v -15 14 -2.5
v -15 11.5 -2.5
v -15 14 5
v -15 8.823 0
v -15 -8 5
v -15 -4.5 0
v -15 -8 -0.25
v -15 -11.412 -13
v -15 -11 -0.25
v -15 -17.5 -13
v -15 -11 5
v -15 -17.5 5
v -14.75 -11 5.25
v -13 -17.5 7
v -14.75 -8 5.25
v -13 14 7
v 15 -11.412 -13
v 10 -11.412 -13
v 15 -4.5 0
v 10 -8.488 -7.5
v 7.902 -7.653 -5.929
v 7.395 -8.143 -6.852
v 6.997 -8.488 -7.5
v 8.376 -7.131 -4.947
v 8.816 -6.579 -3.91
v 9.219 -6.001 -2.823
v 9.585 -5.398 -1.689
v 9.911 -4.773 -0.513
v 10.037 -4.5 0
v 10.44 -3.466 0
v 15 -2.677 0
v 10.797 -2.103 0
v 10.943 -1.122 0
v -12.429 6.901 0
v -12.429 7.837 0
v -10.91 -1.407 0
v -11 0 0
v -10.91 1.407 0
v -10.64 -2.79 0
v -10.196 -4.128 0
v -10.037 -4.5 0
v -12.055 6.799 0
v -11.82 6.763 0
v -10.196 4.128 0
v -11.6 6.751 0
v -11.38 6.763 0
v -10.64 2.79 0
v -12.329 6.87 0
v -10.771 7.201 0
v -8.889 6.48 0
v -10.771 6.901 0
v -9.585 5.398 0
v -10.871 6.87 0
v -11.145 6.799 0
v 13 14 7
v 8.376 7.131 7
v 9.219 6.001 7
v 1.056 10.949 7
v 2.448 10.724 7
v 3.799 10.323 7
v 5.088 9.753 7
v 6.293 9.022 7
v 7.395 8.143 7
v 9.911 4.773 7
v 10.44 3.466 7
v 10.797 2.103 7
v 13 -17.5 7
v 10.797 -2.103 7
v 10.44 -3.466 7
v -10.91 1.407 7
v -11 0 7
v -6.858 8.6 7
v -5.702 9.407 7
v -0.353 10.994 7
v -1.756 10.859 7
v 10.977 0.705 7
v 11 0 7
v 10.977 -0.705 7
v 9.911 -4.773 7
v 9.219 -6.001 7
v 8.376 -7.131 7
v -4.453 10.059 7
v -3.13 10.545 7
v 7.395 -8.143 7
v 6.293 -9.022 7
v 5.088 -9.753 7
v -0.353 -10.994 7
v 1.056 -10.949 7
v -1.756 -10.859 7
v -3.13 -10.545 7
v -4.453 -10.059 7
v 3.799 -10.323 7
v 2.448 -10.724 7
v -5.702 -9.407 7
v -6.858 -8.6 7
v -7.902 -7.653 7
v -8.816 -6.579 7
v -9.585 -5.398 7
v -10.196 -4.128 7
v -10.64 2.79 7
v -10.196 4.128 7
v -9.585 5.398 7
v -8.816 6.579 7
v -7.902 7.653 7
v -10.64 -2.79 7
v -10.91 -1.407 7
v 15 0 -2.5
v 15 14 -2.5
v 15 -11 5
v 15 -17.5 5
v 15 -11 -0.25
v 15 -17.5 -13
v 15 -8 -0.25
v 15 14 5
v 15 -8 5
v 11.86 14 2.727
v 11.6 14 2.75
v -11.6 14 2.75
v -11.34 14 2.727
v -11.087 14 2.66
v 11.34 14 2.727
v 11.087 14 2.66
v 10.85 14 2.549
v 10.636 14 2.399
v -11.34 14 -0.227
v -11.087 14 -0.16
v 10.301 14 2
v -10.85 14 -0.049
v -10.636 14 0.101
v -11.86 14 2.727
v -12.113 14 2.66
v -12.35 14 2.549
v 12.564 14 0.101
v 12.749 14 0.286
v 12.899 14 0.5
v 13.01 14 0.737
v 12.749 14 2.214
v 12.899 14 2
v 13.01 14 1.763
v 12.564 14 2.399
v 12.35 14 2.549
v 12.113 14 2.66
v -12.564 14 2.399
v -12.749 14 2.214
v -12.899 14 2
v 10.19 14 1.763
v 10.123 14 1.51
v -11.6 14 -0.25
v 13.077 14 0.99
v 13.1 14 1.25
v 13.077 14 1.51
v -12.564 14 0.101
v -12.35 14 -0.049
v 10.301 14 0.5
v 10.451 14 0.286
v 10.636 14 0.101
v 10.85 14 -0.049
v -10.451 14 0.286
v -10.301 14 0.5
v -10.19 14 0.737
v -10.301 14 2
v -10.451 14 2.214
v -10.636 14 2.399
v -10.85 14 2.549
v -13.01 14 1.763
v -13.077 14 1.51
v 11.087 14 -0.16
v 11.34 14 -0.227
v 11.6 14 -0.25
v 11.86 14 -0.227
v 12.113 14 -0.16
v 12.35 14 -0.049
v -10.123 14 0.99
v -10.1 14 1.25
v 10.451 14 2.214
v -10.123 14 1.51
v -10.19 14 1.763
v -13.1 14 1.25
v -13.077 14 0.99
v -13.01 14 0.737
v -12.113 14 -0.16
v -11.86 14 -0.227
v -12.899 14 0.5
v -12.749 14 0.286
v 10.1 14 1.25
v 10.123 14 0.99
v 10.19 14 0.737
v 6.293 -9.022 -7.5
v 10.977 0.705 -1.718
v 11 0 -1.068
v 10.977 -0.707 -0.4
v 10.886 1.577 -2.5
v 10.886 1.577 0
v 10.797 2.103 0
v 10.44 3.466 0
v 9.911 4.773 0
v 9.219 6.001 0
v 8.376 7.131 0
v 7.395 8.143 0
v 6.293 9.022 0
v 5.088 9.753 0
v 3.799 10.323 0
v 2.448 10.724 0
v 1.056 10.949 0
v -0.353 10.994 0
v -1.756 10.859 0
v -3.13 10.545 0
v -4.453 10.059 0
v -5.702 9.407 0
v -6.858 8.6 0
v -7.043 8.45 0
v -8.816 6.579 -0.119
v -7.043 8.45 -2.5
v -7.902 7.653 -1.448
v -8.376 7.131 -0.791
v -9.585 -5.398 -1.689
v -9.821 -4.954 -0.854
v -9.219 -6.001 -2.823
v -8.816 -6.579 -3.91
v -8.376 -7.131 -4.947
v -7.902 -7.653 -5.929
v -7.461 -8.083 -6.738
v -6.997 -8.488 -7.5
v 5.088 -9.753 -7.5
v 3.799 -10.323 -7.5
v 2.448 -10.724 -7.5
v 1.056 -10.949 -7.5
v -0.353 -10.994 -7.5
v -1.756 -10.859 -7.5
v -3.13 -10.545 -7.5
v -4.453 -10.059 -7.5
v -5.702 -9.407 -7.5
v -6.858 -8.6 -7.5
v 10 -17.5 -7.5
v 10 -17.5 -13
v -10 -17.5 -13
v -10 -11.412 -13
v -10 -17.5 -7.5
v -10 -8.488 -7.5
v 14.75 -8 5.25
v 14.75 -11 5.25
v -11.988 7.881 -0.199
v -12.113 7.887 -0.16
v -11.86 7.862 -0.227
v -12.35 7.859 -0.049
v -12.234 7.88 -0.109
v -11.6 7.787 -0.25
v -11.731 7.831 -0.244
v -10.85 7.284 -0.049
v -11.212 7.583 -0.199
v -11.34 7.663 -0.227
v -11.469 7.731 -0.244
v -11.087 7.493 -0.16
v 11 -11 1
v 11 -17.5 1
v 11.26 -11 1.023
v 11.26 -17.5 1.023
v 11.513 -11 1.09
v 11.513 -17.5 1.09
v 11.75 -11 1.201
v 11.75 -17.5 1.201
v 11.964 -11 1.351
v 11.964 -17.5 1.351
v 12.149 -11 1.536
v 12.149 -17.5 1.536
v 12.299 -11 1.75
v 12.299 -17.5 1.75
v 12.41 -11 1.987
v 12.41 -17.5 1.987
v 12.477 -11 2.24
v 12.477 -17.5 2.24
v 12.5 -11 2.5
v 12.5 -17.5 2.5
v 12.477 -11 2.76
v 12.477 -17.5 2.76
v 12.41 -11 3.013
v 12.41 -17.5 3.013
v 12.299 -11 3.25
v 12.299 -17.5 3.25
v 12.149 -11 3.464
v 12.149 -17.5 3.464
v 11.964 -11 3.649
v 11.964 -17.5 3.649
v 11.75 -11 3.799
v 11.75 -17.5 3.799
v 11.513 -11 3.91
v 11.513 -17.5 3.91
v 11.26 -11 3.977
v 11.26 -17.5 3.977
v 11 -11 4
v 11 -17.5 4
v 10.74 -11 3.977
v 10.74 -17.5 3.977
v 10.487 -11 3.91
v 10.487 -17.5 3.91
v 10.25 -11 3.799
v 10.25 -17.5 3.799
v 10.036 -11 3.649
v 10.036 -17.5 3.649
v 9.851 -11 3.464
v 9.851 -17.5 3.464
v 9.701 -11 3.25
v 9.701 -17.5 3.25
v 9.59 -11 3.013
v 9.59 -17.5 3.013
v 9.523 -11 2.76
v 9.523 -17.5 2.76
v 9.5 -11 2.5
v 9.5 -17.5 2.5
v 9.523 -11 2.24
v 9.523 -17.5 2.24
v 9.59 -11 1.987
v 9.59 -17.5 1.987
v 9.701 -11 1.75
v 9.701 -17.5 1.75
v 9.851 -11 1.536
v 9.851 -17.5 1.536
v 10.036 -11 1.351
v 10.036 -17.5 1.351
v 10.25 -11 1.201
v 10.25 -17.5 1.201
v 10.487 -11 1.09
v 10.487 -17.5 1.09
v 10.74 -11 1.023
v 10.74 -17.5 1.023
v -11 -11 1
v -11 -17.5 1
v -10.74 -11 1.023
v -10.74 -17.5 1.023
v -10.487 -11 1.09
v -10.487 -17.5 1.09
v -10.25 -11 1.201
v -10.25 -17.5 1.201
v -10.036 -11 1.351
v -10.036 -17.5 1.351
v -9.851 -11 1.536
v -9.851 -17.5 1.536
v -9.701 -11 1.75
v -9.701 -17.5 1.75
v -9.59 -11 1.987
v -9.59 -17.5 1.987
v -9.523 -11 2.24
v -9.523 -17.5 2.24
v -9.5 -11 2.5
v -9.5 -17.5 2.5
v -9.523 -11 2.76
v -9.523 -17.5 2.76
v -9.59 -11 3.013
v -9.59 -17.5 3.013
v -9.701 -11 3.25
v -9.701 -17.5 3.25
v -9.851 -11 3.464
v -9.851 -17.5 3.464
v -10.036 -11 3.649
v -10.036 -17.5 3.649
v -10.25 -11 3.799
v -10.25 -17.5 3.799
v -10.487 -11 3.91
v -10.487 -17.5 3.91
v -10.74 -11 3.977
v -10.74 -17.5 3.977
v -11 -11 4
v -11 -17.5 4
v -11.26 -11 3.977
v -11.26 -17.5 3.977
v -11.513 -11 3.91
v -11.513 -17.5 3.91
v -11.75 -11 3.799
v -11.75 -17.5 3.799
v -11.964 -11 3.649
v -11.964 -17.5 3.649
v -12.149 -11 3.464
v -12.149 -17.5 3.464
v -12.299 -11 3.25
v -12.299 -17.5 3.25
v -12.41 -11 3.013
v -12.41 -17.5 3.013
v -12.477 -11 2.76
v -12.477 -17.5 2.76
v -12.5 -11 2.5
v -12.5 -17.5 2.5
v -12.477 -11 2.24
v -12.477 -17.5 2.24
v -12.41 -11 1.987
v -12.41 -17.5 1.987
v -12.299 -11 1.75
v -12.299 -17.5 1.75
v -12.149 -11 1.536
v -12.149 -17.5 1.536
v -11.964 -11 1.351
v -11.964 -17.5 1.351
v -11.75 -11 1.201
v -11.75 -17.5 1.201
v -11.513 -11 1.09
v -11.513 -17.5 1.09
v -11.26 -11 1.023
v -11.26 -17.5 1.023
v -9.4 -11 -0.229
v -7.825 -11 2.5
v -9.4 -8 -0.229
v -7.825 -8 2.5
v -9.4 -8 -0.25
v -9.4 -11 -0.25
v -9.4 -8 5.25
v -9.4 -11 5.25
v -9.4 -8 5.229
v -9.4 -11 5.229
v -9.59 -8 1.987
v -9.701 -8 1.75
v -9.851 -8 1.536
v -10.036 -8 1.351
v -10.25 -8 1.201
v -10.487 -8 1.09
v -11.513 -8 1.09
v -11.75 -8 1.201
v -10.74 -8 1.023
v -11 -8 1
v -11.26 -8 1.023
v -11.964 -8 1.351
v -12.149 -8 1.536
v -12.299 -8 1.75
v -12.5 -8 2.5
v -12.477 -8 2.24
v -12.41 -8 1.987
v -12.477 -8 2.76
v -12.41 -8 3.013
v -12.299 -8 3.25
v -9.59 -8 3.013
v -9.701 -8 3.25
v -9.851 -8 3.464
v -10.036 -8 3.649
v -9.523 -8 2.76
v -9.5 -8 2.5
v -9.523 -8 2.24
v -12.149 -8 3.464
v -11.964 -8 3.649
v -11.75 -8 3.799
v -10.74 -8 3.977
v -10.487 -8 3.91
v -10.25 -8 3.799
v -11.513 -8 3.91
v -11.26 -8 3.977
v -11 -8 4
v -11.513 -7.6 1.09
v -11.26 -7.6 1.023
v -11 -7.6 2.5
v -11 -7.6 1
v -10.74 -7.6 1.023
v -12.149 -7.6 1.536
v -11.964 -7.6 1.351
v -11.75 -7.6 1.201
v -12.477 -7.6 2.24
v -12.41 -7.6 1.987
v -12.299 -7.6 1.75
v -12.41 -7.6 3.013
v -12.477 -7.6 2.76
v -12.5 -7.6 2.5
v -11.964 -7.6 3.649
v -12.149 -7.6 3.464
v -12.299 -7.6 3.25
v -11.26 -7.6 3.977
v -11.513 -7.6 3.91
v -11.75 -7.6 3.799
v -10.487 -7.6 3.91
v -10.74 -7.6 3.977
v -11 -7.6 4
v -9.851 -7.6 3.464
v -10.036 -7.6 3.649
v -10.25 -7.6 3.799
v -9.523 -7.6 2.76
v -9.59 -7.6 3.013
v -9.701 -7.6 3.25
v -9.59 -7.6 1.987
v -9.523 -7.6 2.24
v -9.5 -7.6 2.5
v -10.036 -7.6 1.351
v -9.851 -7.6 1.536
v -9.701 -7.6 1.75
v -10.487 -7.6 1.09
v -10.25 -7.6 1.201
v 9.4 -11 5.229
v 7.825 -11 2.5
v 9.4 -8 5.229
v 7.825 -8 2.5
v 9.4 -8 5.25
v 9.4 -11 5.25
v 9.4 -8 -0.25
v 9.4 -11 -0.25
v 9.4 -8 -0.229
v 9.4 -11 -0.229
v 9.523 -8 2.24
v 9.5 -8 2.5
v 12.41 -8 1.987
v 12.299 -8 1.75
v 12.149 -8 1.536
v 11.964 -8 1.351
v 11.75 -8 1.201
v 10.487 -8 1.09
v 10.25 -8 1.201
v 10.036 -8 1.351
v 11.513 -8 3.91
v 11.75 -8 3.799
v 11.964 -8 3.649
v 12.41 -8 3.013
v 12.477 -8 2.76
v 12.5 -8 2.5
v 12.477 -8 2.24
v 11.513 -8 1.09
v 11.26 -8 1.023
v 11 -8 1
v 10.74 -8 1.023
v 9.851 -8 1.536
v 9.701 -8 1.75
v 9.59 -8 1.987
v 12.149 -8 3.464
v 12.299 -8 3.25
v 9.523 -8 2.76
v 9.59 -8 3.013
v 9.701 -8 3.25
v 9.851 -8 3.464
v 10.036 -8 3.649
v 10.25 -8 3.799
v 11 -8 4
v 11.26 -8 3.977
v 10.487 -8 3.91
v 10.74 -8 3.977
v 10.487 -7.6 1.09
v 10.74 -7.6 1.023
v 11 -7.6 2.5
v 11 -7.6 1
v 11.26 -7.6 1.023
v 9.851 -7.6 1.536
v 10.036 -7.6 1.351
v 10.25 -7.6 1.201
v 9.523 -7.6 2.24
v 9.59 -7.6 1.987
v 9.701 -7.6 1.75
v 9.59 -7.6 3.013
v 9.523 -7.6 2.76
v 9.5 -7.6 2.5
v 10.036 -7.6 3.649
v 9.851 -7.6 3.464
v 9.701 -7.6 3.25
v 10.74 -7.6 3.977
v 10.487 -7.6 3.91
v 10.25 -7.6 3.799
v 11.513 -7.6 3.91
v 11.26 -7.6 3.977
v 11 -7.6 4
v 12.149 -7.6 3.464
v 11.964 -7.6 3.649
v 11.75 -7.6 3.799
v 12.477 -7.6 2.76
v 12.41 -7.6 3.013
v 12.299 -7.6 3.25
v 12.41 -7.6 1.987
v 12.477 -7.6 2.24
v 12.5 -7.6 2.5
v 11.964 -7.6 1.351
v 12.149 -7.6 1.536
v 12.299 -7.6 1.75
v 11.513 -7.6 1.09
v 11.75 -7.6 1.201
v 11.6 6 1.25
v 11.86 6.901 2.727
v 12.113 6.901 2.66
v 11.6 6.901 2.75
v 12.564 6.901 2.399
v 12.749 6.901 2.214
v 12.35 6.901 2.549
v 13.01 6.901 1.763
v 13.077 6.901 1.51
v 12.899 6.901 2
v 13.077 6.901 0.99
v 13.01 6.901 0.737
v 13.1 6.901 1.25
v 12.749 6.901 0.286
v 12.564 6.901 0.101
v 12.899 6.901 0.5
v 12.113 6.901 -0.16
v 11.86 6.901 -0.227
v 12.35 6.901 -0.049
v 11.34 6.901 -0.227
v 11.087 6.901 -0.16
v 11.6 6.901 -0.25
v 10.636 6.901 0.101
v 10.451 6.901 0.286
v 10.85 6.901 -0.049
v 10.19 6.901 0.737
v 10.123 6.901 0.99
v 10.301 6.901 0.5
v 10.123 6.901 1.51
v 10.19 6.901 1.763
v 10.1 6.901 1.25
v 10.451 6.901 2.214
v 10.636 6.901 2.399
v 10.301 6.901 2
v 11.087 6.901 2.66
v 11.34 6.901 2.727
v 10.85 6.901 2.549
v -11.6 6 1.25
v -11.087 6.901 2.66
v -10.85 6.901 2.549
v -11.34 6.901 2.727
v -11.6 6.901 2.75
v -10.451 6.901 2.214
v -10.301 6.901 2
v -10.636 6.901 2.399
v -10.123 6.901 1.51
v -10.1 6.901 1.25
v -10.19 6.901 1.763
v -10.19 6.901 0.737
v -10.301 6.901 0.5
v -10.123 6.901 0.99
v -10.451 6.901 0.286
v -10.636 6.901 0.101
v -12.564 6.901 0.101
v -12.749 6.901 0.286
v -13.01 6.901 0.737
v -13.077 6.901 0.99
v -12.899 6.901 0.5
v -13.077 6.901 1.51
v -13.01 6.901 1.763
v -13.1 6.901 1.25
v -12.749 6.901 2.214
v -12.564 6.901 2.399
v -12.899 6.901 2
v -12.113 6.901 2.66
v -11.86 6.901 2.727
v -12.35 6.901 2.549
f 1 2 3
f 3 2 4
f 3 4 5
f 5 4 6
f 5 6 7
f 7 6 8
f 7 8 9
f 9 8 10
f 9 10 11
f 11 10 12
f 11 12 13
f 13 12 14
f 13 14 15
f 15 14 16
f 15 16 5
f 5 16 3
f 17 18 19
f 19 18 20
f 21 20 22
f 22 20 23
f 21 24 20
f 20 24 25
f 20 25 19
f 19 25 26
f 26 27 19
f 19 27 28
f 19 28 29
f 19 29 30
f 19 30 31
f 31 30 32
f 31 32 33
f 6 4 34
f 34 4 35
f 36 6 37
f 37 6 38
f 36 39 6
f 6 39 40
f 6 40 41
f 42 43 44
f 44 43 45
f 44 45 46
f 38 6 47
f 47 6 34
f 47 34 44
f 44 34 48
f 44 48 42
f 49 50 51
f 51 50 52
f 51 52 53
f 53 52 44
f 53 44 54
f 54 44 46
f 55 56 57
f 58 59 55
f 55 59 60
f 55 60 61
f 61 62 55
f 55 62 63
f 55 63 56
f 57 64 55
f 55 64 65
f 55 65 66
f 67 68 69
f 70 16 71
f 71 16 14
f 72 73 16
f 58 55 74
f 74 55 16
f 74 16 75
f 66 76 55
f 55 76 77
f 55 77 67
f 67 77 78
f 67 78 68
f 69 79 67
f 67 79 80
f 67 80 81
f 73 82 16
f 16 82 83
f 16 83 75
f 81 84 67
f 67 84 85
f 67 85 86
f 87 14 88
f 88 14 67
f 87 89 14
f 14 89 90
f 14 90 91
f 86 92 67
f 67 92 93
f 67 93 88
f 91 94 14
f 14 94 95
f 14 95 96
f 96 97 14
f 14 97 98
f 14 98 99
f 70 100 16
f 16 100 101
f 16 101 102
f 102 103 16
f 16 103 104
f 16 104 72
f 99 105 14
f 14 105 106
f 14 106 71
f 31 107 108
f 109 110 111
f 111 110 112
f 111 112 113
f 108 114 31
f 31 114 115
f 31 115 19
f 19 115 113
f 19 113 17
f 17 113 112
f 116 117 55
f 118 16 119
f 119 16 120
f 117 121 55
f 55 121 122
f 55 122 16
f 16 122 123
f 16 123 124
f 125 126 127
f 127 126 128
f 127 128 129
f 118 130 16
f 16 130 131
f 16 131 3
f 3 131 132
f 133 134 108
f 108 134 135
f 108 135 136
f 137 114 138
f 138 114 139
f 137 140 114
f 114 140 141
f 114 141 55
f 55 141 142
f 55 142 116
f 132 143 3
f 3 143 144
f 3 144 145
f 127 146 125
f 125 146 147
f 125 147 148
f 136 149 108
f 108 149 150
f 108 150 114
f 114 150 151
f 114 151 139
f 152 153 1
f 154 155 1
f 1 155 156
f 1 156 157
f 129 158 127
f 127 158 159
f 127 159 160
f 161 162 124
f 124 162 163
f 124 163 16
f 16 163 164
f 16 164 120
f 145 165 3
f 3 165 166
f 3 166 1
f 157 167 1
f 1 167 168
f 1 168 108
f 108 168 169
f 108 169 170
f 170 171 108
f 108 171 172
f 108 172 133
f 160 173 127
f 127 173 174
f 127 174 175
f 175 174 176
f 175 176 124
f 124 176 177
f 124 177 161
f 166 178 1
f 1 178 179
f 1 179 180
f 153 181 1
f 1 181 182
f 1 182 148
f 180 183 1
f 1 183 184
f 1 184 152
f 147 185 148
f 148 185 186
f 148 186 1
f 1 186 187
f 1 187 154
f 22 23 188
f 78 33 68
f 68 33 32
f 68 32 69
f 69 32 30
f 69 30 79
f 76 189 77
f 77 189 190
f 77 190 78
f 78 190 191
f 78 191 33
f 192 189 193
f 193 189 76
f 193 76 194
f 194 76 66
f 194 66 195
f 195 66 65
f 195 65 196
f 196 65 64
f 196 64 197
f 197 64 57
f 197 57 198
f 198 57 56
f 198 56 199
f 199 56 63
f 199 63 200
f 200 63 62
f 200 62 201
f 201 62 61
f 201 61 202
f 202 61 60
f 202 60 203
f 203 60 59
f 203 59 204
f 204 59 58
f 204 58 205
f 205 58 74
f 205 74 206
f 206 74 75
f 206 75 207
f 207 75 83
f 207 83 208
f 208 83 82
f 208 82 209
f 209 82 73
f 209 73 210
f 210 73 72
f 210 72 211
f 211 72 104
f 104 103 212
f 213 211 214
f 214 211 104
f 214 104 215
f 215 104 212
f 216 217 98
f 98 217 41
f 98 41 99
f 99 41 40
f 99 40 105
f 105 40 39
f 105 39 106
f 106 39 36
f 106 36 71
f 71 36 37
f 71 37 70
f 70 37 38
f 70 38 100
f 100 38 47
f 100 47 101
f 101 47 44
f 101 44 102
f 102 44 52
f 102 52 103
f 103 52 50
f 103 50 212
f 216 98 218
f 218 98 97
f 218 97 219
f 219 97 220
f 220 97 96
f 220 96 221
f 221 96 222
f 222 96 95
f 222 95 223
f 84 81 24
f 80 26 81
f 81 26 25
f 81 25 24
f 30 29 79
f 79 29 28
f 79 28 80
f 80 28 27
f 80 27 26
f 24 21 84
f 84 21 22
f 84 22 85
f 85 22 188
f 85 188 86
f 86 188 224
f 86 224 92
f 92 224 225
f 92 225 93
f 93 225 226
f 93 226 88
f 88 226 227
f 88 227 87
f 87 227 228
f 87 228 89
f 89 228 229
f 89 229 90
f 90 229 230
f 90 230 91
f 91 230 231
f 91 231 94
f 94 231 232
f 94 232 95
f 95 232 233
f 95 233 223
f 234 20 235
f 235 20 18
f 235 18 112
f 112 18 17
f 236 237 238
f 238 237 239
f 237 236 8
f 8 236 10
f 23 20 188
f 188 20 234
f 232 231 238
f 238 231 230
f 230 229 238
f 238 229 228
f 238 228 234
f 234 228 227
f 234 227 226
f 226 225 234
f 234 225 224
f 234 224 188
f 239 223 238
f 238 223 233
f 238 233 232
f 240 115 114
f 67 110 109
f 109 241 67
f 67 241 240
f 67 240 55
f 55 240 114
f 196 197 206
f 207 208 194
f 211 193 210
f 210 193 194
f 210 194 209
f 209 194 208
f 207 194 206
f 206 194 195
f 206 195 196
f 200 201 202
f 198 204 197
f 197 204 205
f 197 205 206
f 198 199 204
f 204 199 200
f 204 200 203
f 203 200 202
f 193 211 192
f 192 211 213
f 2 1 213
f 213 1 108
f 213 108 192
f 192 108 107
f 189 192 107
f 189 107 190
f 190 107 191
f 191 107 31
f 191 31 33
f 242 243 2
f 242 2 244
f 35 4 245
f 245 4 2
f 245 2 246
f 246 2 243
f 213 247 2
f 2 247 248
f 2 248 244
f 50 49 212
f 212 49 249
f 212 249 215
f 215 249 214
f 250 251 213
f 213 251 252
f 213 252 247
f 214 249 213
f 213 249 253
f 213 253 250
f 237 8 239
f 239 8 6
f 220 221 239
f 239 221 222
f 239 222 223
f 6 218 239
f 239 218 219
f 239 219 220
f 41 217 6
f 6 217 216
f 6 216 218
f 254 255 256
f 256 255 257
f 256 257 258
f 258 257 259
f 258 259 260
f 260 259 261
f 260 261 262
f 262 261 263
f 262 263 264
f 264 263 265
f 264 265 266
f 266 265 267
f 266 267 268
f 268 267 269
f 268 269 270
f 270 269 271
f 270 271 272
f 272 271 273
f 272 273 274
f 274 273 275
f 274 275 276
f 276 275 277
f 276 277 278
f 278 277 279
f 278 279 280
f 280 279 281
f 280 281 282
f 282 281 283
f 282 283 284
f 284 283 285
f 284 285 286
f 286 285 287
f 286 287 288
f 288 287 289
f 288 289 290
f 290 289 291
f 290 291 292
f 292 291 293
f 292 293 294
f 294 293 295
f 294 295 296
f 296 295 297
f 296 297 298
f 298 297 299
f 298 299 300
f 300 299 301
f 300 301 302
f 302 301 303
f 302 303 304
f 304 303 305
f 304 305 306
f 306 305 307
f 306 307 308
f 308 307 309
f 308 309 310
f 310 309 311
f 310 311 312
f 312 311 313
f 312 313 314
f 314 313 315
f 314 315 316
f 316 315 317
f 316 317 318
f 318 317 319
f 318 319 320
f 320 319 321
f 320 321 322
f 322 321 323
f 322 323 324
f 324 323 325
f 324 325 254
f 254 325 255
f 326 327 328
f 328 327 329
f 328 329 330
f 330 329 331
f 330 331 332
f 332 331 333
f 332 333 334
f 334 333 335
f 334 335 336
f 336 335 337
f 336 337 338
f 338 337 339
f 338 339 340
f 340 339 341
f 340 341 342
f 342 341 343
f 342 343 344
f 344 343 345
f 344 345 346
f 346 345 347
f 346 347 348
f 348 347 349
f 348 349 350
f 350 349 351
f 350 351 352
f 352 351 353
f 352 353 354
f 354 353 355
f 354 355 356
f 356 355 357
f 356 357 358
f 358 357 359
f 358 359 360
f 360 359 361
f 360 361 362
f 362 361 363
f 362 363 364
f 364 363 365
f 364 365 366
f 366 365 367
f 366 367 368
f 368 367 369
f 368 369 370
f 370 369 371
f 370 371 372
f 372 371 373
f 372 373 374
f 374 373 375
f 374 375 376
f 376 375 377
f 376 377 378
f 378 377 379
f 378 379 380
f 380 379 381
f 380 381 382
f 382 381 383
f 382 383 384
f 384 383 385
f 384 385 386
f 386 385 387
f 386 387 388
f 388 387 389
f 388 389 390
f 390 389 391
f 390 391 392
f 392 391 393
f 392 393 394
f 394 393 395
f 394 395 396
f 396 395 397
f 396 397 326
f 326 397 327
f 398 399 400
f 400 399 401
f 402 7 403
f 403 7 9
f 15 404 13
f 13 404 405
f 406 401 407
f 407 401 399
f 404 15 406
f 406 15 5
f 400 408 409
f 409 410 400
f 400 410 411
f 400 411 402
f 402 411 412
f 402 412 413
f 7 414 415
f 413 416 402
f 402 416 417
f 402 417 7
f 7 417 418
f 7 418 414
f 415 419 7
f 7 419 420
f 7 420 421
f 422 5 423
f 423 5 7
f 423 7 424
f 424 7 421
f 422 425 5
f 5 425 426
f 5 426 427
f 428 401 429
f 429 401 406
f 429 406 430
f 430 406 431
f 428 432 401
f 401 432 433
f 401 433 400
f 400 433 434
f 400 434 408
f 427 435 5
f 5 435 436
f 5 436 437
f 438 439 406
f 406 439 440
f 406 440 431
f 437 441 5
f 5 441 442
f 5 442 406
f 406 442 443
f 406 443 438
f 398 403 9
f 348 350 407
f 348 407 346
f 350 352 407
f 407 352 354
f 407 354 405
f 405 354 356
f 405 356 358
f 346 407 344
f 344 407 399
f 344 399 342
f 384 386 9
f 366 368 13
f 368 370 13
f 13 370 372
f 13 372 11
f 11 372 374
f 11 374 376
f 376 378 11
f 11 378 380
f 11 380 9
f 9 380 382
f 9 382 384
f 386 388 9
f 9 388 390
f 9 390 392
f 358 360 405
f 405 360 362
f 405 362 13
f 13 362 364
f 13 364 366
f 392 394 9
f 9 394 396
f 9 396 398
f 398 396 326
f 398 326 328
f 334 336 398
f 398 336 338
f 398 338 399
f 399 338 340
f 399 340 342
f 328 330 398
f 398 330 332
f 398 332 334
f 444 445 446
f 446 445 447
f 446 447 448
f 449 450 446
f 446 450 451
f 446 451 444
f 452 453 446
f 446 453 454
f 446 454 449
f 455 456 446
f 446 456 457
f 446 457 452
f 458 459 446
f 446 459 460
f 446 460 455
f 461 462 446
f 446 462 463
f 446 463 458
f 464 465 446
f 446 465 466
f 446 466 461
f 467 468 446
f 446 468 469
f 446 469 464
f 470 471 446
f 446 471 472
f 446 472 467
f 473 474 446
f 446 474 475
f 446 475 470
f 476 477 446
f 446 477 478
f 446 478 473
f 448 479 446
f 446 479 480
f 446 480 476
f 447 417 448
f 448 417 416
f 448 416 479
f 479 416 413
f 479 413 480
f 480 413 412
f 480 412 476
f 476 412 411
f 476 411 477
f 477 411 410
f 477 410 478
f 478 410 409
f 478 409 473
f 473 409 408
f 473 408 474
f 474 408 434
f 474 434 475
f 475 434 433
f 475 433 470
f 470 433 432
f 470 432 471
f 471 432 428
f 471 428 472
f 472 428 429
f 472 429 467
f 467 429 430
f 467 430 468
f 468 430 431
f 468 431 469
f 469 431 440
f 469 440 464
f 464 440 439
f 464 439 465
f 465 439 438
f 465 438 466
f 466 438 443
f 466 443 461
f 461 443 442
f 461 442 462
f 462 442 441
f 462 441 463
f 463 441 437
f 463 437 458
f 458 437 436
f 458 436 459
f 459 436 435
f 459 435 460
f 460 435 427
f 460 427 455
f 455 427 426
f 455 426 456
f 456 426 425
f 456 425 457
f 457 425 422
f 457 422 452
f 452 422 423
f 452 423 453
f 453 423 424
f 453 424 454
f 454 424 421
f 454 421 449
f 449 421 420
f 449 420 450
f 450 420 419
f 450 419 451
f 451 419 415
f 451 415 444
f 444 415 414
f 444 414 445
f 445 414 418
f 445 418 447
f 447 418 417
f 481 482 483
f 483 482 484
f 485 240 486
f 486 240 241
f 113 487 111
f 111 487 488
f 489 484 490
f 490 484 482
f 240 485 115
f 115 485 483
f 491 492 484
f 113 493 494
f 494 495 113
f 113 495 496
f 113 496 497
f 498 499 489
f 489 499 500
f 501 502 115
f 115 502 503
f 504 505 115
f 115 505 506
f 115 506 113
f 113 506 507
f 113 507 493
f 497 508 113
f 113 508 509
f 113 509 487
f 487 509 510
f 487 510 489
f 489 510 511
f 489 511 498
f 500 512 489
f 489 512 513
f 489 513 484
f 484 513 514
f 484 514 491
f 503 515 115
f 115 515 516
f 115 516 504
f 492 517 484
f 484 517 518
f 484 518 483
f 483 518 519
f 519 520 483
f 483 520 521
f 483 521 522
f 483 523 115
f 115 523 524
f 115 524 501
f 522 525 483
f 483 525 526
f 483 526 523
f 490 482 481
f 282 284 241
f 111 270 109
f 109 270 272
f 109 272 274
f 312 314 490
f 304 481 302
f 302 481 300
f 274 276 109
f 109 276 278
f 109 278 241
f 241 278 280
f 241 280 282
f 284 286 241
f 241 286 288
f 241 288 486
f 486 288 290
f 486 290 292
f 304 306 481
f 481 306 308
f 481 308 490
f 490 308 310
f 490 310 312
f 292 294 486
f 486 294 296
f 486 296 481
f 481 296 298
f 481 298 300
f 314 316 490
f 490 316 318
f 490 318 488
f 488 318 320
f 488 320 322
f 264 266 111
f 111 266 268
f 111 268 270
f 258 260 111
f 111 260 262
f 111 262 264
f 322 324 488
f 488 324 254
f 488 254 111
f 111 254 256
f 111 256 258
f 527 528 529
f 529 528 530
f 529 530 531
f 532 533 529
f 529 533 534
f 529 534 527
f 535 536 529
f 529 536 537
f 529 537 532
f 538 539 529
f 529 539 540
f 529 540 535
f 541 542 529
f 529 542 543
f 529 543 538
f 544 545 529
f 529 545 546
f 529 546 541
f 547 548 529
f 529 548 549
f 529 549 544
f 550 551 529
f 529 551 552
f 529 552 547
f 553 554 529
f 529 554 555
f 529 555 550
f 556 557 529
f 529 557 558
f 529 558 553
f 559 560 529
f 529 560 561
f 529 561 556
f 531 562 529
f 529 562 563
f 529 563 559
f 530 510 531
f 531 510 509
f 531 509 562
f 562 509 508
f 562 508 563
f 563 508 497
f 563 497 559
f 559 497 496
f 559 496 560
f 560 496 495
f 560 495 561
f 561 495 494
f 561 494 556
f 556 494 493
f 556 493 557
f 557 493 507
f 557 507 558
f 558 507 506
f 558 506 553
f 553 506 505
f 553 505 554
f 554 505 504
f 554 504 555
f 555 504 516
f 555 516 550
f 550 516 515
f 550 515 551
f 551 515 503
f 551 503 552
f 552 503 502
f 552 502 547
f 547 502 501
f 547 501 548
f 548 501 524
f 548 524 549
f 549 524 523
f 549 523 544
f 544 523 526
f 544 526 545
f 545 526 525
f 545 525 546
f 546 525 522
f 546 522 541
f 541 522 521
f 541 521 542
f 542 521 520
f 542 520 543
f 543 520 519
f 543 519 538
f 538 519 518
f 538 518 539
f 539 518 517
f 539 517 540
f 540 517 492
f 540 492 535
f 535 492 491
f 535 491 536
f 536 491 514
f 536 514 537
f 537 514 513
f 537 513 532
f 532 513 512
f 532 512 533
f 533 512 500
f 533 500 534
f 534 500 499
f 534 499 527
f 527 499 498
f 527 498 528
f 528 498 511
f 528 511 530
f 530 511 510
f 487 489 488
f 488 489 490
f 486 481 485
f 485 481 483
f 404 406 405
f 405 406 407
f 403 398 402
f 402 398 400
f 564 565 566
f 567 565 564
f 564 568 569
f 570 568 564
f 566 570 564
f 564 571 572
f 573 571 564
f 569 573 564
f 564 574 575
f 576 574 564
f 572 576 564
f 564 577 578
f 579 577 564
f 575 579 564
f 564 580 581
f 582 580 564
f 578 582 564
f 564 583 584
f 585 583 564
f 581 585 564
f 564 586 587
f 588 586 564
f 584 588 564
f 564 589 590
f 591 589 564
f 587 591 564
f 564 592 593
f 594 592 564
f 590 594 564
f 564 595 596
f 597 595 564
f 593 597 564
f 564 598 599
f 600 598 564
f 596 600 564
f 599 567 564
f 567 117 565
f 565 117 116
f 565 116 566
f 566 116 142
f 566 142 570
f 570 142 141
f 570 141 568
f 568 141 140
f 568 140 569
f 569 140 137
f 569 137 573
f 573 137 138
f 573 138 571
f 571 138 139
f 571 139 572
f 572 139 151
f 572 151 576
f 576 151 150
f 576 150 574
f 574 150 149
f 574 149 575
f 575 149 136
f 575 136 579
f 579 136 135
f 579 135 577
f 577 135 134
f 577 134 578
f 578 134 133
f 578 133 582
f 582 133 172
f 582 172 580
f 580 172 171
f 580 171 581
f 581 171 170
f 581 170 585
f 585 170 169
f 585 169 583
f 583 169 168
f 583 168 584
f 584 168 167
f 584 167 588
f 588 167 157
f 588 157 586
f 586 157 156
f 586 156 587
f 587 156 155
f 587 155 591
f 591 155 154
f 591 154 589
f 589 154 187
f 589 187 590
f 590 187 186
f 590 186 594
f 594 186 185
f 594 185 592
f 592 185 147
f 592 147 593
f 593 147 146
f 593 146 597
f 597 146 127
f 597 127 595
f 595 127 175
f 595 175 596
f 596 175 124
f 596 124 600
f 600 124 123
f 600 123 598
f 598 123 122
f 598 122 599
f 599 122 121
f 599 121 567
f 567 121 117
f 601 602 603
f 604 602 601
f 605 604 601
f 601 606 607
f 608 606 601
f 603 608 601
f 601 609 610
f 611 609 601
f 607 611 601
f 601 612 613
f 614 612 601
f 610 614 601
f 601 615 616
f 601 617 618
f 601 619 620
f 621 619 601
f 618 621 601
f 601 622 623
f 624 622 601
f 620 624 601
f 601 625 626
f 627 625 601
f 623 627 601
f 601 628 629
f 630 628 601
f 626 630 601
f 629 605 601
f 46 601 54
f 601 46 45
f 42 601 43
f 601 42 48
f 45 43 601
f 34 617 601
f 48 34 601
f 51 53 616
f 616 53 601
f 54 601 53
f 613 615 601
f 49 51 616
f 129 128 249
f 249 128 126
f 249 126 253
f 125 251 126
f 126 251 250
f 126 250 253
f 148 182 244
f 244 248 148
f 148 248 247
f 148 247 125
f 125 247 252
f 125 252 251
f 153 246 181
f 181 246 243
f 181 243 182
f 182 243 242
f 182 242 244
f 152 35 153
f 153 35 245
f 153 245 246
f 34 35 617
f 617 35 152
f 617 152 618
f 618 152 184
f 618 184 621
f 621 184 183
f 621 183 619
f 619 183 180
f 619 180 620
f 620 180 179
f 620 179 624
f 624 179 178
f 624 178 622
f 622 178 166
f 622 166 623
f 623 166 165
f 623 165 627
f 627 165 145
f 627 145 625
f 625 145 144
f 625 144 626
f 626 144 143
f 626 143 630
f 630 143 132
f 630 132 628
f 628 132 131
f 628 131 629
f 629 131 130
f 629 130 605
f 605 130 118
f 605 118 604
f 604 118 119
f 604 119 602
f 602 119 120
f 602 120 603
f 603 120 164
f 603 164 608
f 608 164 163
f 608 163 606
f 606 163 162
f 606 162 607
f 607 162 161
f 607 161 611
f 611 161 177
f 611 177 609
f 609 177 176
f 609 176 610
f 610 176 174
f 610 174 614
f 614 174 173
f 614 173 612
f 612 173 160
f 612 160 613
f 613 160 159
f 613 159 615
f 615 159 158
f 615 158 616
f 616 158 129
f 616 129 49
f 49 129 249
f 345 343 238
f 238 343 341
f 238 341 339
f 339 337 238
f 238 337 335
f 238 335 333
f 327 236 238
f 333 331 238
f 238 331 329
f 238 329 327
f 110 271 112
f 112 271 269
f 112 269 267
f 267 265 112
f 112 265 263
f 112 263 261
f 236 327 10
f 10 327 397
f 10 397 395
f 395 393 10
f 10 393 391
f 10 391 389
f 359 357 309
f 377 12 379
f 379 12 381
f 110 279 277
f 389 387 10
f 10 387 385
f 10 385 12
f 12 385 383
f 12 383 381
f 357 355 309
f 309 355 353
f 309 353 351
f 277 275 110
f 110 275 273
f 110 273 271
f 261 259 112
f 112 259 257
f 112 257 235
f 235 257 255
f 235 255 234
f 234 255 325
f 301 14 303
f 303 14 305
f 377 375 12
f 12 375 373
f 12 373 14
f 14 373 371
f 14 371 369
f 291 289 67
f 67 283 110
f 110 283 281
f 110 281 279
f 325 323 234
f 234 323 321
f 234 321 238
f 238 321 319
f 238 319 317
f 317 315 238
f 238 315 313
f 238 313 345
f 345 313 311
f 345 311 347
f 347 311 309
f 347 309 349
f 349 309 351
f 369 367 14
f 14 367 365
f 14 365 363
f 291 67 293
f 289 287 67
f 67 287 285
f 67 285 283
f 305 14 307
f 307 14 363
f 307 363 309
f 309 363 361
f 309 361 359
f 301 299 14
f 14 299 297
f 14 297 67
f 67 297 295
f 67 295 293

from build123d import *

# Parameters (mm, degrees)
SKETCH1_W                 = 30
SKETCH1_H                 = 28
SKETCH1_R                 = 11
BOSS_EXTRUDE1_DEPTH       = 7
SKETCH2_W                 = 5
SKETCH2_H                 = 2.5
BOSS_EXTRUDE2_DEPTH       = 13
CHAMFER2_SIZE             = 2
BOSS_EXTRUDE6_DEPTH       = 2.5
CHAMFER3_SIZE             = 2
CHAMFER4_SIZE             = 2
BOSS_EXTRUDE4_DEPTH       = 2.5
CHAMFER6_SIZE             = 2.5
CHAMFER7_SIZE             = 7
CHAMFER7_SIZE_2           = 13.165085257
SKETCH7_R                 = 1.5
CUT_EXTRUDE2_DEPTH        = 6.4
CUT_EXTRUDE3_START        = -3
SKETCH9_R                 = 1.5
CUT_EXTRUDE3_DEPTH        = 3
SKETCH10_W                = 5.5
SKETCH10_H                = 3
CUT_EXTRUDE4_DEPTH        = 5.6
CUT_EXTRUDE5_START        = -30
SKETCH10_2_W              = 5.5
SKETCH10_2_H              = 3
CUT_EXTRUDE5_DEPTH        = 5.6
F_1_0MM_DOWEL_HOLE1_D     = 3
F_1_0MM_DOWEL_HOLE1_DEPTH = 7.098709071
F_1_0MM_DOWEL_HOLE1_TIP   = 0.901290929
BOSS_EXTRUDE7_START       = 3.5
SKETCH17_R                = 1.5
BOSS_EXTRUDE7_DEPTH       = 3.5


with BuildPart() as part:
    # Sketch1 → Boss-Extrude1 (new body)
    with BuildSketch(Plane.XY):
        Rectangle(SKETCH1_W, SKETCH1_H)
        Circle(SKETCH1_R, mode=Mode.SUBTRACT)
    extrude(amount=BOSS_EXTRUDE1_DEPTH)

    # Sketch2 → Boss-Extrude2 (add)
    with BuildSketch(Plane(origin=(0, 0, 0), x_dir=(-1, 0, 0), z_dir=(0, 0, -1))):
        with Locations((-12.5, -12.75)):
            Rectangle(SKETCH2_W, SKETCH2_H)
        with Locations((12.5, -12.75)):
            Rectangle(SKETCH2_W, SKETCH2_H)
    extrude(amount=BOSS_EXTRUDE2_DEPTH)

    # Chamfer2
    chamfer2_edges = [part.edges().sort_by_distance(p)[0] for p in [
        (-10, -12.75, 0),
        (10, -12.75, 0),
    ]]
    chamfer(chamfer2_edges, length=CHAMFER2_SIZE)

    # Sketch5 → Boss-Extrude6 (add)
    with BuildSketch(Plane.XZ.offset(14)):
        Polygon((-10, -2), (-10, -7.5), (10, -7.5), (10, -2), (8, 0), (-8, 0), align=None)
    extrude(amount=-BOSS_EXTRUDE6_DEPTH)

    # Chamfer3
    chamfer3_edges = [part.edges().sort_by_distance(p)[0] for p in [
        (15, 0, 7),
    ]]
    chamfer(chamfer3_edges, length=CHAMFER3_SIZE)

    # Chamfer4
    chamfer4_edges = [part.edges().sort_by_distance(p)[0] for p in [
        (-15, 0, 7),
    ]]
    chamfer(chamfer4_edges, length=CHAMFER4_SIZE)

    # Sketch4 → Boss-Extrude4 (add)
    with BuildSketch(Plane(origin=(0, 0, 0), x_dir=(-1, 0, 0), z_dir=(0, 0, -1))):
        Polygon((-15, 0), (15, 11.5), (15, 14), (-15, 14), align=None)
    extrude(amount=BOSS_EXTRUDE4_DEPTH)

    # Chamfer6
    # the kernel refuses this chamfer: 2.5 mm, written as the material it adds along each edge
    with BuildSketch(Plane(origin=(21.003247512, -2.30124488, 0), x_dir=(-0.3578006820796162, -0.9333930836859554, 0.02749587661058638), z_dir=(-0.9337461173020497, 0.35793601163245237, 0))) as chamfer6_piece_1_section:
        Polygon((CHAMFER6_SIZE * 0.999621916911, -CHAMFER6_SIZE * 0.0274958766106), (-CHAMFER6_SIZE * 0.0274958766106, -CHAMFER6_SIZE * 0.999621916911), (0, 0), align=None)
    chamfer6_piece_1 = extrude(amount=17.263908412, mode=Mode.PRIVATE)
    chamfer6_piece_1 = chamfer6_piece_1 - Plane(origin=(0, 0, -0.835393566), x_dir=(1, 0, 0), z_dir=(0, 0, -1)) * Cylinder(11, 45, mode=Mode.PRIVATE)
    chamfer6_piece_1 = split(chamfer6_piece_1, bisect_by=Plane(origin=(15, -0.113968884, -0.835393566), z_dir=(-1, 0, 0)), keep=Keep.TOP, mode=Mode.PRIVATE)
    add(chamfer6_piece_1)
    with BuildSketch(Plane(origin=(-1.03959441, 6.148511191, 0), x_dir=(-0.35780068207961624, -0.9333930836859554, 0.02749587661058638), z_dir=(-0.9337461173020497, 0.35793601163245237, 0))) as chamfer6_piece_2_section:
        Polygon((CHAMFER6_SIZE * 0.999621916911, -CHAMFER6_SIZE * 0.0274958766106), (-CHAMFER6_SIZE * 0.0274958766106, -CHAMFER6_SIZE * 0.999621916911), (0, 0), align=None)
    chamfer6_piece_2 = extrude(amount=21.380172546, mode=Mode.PRIVATE)
    chamfer6_piece_2 = chamfer6_piece_2 - Plane(origin=(0, 0, -0.851534645), x_dir=(1, 0, 0), z_dir=(0, 0, -1)) * Cylinder(11, 53, mode=Mode.PRIVATE)
    chamfer6_piece_2 = split(chamfer6_piece_2, bisect_by=Plane(origin=(-15, 9.244820467, -0.851534645), z_dir=(1, 0, 0)), keep=Keep.TOP, mode=Mode.PRIVATE)
    add(chamfer6_piece_2)

    # Chamfer7
    # the kernel refuses this chamfer: 13.165085257, 7 mm, written as the material it adds along each edge
    with BuildSketch(Plane(origin=(-15, -11.5, 0), x_dir=(0, 0.9979482451756082, 0.06402577567608186), z_dir=(1, 0, 0))) as chamfer7_piece_1_section:
        Polygon((CHAMFER7_SIZE * 0.997948245176, -CHAMFER7_SIZE * 0.0640257756761), (-CHAMFER7_SIZE_2 * 0.0640257756781, -CHAMFER7_SIZE_2 * 0.997948245208), (0, 0), align=None)
    chamfer7_piece_1 = extrude(amount=30, mode=Mode.PRIVATE)
    chamfer7_piece_1 = chamfer7_piece_1 - Plane(origin=(0, 0, -3.073682767), x_dir=(1, 0, 0), z_dir=(0, 0, -1)) * Cylinder(11, 113, mode=Mode.PRIVATE)
    chamfer7_piece_1 = split(chamfer7_piece_1, bisect_by=Plane(origin=(-10, -8.887755394, -3.073682767), z_dir=(-1, 0, 0)), keep=Keep.TOP, mode=Mode.PRIVATE)
    chamfer7_piece_1 = split(chamfer7_piece_1, bisect_by=Plane(origin=(-12.500128058, -8.887755394, -7.5), z_dir=(0, 0, 1)), keep=Keep.TOP, mode=Mode.PRIVATE)
    add(chamfer7_piece_1)
    with BuildSketch(Plane(origin=(-15, -11.5, 0), x_dir=(0, 0.9979482451756082, 0.06402577567608186), z_dir=(1, 0, 0))) as chamfer7_piece_2_section:
        Polygon((CHAMFER7_SIZE * 0.997948245176, -CHAMFER7_SIZE * 0.0640257756761), (-CHAMFER7_SIZE_2 * 0.0640257756781, -CHAMFER7_SIZE_2 * 0.997948245208), (0, 0), align=None)
    chamfer7_piece_2 = extrude(amount=30, mode=Mode.PRIVATE)
    chamfer7_piece_2 = split(chamfer7_piece_2, bisect_by=Plane(origin=(-10, -10.721530873, -9.597564575), z_dir=(-1, 0, 0)), keep=Keep.TOP, mode=Mode.PRIVATE)
    chamfer7_piece_2 = split(chamfer7_piece_2, bisect_by=Plane(origin=(-12.5, -10.721530873, -7.5), z_dir=(0, 0, -1)), keep=Keep.TOP, mode=Mode.PRIVATE)
    chamfer7_piece_2 = split(chamfer7_piece_2, bisect_by=Plane(origin=(-12.5, -10.721530873, -13), z_dir=(0, 0, 1)), keep=Keep.TOP, mode=Mode.PRIVATE)
    add(chamfer7_piece_2)
    with BuildSketch(Plane(origin=(-15, -11.5, 0), x_dir=(0, 0.9979482451756082, 0.06402577567608186), z_dir=(1, 0, 0))) as chamfer7_piece_3_section:
        Polygon((CHAMFER7_SIZE * 0.997948245176, -CHAMFER7_SIZE * 0.0640257756761), (-CHAMFER7_SIZE_2 * 0.0640257756781, -CHAMFER7_SIZE_2 * 0.997948245208), (0, 0), align=None)
    chamfer7_piece_3 = extrude(amount=30, mode=Mode.PRIVATE)
    chamfer7_piece_3 = chamfer7_piece_3 - Plane(origin=(0, 0, -3.793876077), x_dir=(1, 0, 0), z_dir=(0, 0, -1)) * Cylinder(11, 113, mode=Mode.PRIVATE)
    chamfer7_piece_3 = split(chamfer7_piece_3, bisect_by=Plane(origin=(-10, -6.598719884, -3.793876077), z_dir=(1, 0, 0)), keep=Keep.TOP, mode=Mode.PRIVATE)
    chamfer7_piece_3 = split(chamfer7_piece_3, bisect_by=Plane(origin=(-9.499486782, -6.598719884, -7.5), z_dir=(0, 0, 1)), keep=Keep.TOP, mode=Mode.PRIVATE)
    chamfer7_piece_3 = split(chamfer7_piece_3, bisect_by=Plane(origin=(10, -6.598719884, -3.793876077), z_dir=(-1, 0, 0)), keep=Keep.TOP, mode=Mode.PRIVATE)
    add(chamfer7_piece_3)
    with BuildSketch(Plane(origin=(-15, -11.5, 0), x_dir=(0, 0.9979482451756082, 0.06402577567608186), z_dir=(1, 0, 0))) as chamfer7_piece_4_section:
        Polygon((CHAMFER7_SIZE * 0.997948245176, -CHAMFER7_SIZE * 0.0640257756761), (-CHAMFER7_SIZE_2 * 0.0640257756781, -CHAMFER7_SIZE_2 * 0.997948245208), (0, 0), align=None)
    chamfer7_piece_4 = extrude(amount=30, mode=Mode.PRIVATE)
    chamfer7_piece_4 = split(chamfer7_piece_4, bisect_by=Plane(origin=(12.5, -10.721530873, -7.5), z_dir=(0, 0, -1)), keep=Keep.TOP, mode=Mode.PRIVATE)
    chamfer7_piece_4 = split(chamfer7_piece_4, bisect_by=Plane(origin=(10, -10.721530873, -9.597564575), z_dir=(1, 0, 0)), keep=Keep.TOP, mode=Mode.PRIVATE)
    chamfer7_piece_4 = split(chamfer7_piece_4, bisect_by=Plane(origin=(12.5, -10.721530873, -13), z_dir=(0, 0, 1)), keep=Keep.TOP, mode=Mode.PRIVATE)
    add(chamfer7_piece_4)
    with BuildSketch(Plane(origin=(-15, -11.5, 0), x_dir=(0, 0.9979482451756082, 0.06402577567608186), z_dir=(1, 0, 0))) as chamfer7_piece_5_section:
        Polygon((CHAMFER7_SIZE * 0.997948245176, -CHAMFER7_SIZE * 0.0640257756761), (-CHAMFER7_SIZE_2 * 0.0640257756781, -CHAMFER7_SIZE_2 * 0.997948245208), (0, 0), align=None)
    chamfer7_piece_5 = extrude(amount=30, mode=Mode.PRIVATE)
    chamfer7_piece_5 = chamfer7_piece_5 - Plane(origin=(0, 0, -3.073682766), x_dir=(1, 0, 0), z_dir=(0, 0, -1)) * Cylinder(11, 113, mode=Mode.PRIVATE)
    chamfer7_piece_5 = split(chamfer7_piece_5, bisect_by=Plane(origin=(12.500128057, -8.887755394, -7.5), z_dir=(0, 0, 1)), keep=Keep.TOP, mode=Mode.PRIVATE)
    chamfer7_piece_5 = split(chamfer7_piece_5, bisect_by=Plane(origin=(10, -8.887755394, -3.073682766), z_dir=(1, 0, 0)), keep=Keep.TOP, mode=Mode.PRIVATE)
    add(chamfer7_piece_5)

    # Sketch7 → Cut-Extrude2 (cut)
    with BuildSketch(Plane.XZ.offset(14)):
        with Locations(Location((-11, 2.5, 0), (0, 0, 270))):
            Circle(SKETCH7_R)
        with Locations(Location((11, 2.5, 0), (0, 0, 270))):
            Circle(SKETCH7_R)
    extrude(amount=-CUT_EXTRUDE2_DEPTH, mode=Mode.SUBTRACT)

    # Sketch9 → Cut-Extrude3 (cut)
    # profile 1 of 2: a face of its own
    with BuildSketch(Plane.XZ.offset(14).offset(CUT_EXTRUDE3_START)):
        Polygon((7.824573519, 2.5), (9.41228676, -0.25), (12.58771324, -0.25), (14.175426481, 2.5), (12.58771324, 5.25), (9.41228676, 5.25), align=None)
        with Locations(Location((11, 2.5, 0), (0, 0, 270))):
            Circle(SKETCH9_R, mode=Mode.SUBTRACT)
    # profile 2 of 2: a face of its own
    with BuildSketch(Plane.XZ.offset(14).offset(CUT_EXTRUDE3_START)):
        Polygon((-7.824573519, 2.5), (-9.41228676, 5.25), (-12.58771324, 5.25), (-14.175426481, 2.5), (-12.58771324, -0.25), (-9.41228676, -0.25), align=None)
        with Locations(Location((-11, 2.5, 0), (0, 0, 270))):
            Circle(SKETCH9_R, mode=Mode.SUBTRACT)
    extrude(amount=-CUT_EXTRUDE3_DEPTH, mode=Mode.SUBTRACT)

    # Sketch10 → Cut-Extrude4 (cut)
    with BuildSketch(Plane(origin=(15, 0, 0), x_dir=(0, 0, -1), z_dir=(1, 0, 0))):
        with Locations((-2.5, -9.5)):
            Rectangle(SKETCH10_W, SKETCH10_H)
    extrude(amount=-CUT_EXTRUDE4_DEPTH, mode=Mode.SUBTRACT)

    # Sketch10<2> → Cut-Extrude5 (cut)
    with BuildSketch(Plane(origin=(15, 0, 0), x_dir=(0, 0, -1), z_dir=(1, 0, 0)).offset(CUT_EXTRUDE5_START)):
        with Locations((-2.5, -9.5)):
            Rectangle(SKETCH10_2_W, SKETCH10_2_H)
    extrude(amount=CUT_EXTRUDE5_DEPTH, mode=Mode.SUBTRACT)

    # Ø1.0mm Dowel Hole1
    with Locations(Plane(origin=(0, 14, 0), x_dir=(1, 0, 0), z_dir=(0, 1, 0))):
        with Locations((-11.6, -1.25), (11.6, -1.25)):
            Hole(F_1_0MM_DOWEL_HOLE1_D / 2, depth=F_1_0MM_DOWEL_HOLE1_DEPTH)
            with Locations((0, 0, -(F_1_0MM_DOWEL_HOLE1_DEPTH + F_1_0MM_DOWEL_HOLE1_TIP / 2))):  # 118° drill point
                Cone(0, F_1_0MM_DOWEL_HOLE1_D / 2, F_1_0MM_DOWEL_HOLE1_TIP, mode=Mode.SUBTRACT)

    # Sketch17 → Boss-Extrude7 (add)
    with BuildSketch(Plane.XZ.offset(14).offset(BOSS_EXTRUDE7_START)):
        Polygon((13, 7), (-13, 7), (-15, 5), (-15, -13), (-10, -13), (-10, -7.5), (10, -7.5), (10, -13), (15, -13), (15, 5), align=None)
        with Locations(Location((-11, 2.5, 0), (0, 0, 270))):
            Circle(SKETCH17_R, mode=Mode.SUBTRACT)
        with Locations(Location((11, 2.5, 0), (0, 0, 270))):
            Circle(SKETCH17_R, mode=Mode.SUBTRACT)
    extrude(amount=-BOSS_EXTRUDE7_DEPTH)


solid = part.part
